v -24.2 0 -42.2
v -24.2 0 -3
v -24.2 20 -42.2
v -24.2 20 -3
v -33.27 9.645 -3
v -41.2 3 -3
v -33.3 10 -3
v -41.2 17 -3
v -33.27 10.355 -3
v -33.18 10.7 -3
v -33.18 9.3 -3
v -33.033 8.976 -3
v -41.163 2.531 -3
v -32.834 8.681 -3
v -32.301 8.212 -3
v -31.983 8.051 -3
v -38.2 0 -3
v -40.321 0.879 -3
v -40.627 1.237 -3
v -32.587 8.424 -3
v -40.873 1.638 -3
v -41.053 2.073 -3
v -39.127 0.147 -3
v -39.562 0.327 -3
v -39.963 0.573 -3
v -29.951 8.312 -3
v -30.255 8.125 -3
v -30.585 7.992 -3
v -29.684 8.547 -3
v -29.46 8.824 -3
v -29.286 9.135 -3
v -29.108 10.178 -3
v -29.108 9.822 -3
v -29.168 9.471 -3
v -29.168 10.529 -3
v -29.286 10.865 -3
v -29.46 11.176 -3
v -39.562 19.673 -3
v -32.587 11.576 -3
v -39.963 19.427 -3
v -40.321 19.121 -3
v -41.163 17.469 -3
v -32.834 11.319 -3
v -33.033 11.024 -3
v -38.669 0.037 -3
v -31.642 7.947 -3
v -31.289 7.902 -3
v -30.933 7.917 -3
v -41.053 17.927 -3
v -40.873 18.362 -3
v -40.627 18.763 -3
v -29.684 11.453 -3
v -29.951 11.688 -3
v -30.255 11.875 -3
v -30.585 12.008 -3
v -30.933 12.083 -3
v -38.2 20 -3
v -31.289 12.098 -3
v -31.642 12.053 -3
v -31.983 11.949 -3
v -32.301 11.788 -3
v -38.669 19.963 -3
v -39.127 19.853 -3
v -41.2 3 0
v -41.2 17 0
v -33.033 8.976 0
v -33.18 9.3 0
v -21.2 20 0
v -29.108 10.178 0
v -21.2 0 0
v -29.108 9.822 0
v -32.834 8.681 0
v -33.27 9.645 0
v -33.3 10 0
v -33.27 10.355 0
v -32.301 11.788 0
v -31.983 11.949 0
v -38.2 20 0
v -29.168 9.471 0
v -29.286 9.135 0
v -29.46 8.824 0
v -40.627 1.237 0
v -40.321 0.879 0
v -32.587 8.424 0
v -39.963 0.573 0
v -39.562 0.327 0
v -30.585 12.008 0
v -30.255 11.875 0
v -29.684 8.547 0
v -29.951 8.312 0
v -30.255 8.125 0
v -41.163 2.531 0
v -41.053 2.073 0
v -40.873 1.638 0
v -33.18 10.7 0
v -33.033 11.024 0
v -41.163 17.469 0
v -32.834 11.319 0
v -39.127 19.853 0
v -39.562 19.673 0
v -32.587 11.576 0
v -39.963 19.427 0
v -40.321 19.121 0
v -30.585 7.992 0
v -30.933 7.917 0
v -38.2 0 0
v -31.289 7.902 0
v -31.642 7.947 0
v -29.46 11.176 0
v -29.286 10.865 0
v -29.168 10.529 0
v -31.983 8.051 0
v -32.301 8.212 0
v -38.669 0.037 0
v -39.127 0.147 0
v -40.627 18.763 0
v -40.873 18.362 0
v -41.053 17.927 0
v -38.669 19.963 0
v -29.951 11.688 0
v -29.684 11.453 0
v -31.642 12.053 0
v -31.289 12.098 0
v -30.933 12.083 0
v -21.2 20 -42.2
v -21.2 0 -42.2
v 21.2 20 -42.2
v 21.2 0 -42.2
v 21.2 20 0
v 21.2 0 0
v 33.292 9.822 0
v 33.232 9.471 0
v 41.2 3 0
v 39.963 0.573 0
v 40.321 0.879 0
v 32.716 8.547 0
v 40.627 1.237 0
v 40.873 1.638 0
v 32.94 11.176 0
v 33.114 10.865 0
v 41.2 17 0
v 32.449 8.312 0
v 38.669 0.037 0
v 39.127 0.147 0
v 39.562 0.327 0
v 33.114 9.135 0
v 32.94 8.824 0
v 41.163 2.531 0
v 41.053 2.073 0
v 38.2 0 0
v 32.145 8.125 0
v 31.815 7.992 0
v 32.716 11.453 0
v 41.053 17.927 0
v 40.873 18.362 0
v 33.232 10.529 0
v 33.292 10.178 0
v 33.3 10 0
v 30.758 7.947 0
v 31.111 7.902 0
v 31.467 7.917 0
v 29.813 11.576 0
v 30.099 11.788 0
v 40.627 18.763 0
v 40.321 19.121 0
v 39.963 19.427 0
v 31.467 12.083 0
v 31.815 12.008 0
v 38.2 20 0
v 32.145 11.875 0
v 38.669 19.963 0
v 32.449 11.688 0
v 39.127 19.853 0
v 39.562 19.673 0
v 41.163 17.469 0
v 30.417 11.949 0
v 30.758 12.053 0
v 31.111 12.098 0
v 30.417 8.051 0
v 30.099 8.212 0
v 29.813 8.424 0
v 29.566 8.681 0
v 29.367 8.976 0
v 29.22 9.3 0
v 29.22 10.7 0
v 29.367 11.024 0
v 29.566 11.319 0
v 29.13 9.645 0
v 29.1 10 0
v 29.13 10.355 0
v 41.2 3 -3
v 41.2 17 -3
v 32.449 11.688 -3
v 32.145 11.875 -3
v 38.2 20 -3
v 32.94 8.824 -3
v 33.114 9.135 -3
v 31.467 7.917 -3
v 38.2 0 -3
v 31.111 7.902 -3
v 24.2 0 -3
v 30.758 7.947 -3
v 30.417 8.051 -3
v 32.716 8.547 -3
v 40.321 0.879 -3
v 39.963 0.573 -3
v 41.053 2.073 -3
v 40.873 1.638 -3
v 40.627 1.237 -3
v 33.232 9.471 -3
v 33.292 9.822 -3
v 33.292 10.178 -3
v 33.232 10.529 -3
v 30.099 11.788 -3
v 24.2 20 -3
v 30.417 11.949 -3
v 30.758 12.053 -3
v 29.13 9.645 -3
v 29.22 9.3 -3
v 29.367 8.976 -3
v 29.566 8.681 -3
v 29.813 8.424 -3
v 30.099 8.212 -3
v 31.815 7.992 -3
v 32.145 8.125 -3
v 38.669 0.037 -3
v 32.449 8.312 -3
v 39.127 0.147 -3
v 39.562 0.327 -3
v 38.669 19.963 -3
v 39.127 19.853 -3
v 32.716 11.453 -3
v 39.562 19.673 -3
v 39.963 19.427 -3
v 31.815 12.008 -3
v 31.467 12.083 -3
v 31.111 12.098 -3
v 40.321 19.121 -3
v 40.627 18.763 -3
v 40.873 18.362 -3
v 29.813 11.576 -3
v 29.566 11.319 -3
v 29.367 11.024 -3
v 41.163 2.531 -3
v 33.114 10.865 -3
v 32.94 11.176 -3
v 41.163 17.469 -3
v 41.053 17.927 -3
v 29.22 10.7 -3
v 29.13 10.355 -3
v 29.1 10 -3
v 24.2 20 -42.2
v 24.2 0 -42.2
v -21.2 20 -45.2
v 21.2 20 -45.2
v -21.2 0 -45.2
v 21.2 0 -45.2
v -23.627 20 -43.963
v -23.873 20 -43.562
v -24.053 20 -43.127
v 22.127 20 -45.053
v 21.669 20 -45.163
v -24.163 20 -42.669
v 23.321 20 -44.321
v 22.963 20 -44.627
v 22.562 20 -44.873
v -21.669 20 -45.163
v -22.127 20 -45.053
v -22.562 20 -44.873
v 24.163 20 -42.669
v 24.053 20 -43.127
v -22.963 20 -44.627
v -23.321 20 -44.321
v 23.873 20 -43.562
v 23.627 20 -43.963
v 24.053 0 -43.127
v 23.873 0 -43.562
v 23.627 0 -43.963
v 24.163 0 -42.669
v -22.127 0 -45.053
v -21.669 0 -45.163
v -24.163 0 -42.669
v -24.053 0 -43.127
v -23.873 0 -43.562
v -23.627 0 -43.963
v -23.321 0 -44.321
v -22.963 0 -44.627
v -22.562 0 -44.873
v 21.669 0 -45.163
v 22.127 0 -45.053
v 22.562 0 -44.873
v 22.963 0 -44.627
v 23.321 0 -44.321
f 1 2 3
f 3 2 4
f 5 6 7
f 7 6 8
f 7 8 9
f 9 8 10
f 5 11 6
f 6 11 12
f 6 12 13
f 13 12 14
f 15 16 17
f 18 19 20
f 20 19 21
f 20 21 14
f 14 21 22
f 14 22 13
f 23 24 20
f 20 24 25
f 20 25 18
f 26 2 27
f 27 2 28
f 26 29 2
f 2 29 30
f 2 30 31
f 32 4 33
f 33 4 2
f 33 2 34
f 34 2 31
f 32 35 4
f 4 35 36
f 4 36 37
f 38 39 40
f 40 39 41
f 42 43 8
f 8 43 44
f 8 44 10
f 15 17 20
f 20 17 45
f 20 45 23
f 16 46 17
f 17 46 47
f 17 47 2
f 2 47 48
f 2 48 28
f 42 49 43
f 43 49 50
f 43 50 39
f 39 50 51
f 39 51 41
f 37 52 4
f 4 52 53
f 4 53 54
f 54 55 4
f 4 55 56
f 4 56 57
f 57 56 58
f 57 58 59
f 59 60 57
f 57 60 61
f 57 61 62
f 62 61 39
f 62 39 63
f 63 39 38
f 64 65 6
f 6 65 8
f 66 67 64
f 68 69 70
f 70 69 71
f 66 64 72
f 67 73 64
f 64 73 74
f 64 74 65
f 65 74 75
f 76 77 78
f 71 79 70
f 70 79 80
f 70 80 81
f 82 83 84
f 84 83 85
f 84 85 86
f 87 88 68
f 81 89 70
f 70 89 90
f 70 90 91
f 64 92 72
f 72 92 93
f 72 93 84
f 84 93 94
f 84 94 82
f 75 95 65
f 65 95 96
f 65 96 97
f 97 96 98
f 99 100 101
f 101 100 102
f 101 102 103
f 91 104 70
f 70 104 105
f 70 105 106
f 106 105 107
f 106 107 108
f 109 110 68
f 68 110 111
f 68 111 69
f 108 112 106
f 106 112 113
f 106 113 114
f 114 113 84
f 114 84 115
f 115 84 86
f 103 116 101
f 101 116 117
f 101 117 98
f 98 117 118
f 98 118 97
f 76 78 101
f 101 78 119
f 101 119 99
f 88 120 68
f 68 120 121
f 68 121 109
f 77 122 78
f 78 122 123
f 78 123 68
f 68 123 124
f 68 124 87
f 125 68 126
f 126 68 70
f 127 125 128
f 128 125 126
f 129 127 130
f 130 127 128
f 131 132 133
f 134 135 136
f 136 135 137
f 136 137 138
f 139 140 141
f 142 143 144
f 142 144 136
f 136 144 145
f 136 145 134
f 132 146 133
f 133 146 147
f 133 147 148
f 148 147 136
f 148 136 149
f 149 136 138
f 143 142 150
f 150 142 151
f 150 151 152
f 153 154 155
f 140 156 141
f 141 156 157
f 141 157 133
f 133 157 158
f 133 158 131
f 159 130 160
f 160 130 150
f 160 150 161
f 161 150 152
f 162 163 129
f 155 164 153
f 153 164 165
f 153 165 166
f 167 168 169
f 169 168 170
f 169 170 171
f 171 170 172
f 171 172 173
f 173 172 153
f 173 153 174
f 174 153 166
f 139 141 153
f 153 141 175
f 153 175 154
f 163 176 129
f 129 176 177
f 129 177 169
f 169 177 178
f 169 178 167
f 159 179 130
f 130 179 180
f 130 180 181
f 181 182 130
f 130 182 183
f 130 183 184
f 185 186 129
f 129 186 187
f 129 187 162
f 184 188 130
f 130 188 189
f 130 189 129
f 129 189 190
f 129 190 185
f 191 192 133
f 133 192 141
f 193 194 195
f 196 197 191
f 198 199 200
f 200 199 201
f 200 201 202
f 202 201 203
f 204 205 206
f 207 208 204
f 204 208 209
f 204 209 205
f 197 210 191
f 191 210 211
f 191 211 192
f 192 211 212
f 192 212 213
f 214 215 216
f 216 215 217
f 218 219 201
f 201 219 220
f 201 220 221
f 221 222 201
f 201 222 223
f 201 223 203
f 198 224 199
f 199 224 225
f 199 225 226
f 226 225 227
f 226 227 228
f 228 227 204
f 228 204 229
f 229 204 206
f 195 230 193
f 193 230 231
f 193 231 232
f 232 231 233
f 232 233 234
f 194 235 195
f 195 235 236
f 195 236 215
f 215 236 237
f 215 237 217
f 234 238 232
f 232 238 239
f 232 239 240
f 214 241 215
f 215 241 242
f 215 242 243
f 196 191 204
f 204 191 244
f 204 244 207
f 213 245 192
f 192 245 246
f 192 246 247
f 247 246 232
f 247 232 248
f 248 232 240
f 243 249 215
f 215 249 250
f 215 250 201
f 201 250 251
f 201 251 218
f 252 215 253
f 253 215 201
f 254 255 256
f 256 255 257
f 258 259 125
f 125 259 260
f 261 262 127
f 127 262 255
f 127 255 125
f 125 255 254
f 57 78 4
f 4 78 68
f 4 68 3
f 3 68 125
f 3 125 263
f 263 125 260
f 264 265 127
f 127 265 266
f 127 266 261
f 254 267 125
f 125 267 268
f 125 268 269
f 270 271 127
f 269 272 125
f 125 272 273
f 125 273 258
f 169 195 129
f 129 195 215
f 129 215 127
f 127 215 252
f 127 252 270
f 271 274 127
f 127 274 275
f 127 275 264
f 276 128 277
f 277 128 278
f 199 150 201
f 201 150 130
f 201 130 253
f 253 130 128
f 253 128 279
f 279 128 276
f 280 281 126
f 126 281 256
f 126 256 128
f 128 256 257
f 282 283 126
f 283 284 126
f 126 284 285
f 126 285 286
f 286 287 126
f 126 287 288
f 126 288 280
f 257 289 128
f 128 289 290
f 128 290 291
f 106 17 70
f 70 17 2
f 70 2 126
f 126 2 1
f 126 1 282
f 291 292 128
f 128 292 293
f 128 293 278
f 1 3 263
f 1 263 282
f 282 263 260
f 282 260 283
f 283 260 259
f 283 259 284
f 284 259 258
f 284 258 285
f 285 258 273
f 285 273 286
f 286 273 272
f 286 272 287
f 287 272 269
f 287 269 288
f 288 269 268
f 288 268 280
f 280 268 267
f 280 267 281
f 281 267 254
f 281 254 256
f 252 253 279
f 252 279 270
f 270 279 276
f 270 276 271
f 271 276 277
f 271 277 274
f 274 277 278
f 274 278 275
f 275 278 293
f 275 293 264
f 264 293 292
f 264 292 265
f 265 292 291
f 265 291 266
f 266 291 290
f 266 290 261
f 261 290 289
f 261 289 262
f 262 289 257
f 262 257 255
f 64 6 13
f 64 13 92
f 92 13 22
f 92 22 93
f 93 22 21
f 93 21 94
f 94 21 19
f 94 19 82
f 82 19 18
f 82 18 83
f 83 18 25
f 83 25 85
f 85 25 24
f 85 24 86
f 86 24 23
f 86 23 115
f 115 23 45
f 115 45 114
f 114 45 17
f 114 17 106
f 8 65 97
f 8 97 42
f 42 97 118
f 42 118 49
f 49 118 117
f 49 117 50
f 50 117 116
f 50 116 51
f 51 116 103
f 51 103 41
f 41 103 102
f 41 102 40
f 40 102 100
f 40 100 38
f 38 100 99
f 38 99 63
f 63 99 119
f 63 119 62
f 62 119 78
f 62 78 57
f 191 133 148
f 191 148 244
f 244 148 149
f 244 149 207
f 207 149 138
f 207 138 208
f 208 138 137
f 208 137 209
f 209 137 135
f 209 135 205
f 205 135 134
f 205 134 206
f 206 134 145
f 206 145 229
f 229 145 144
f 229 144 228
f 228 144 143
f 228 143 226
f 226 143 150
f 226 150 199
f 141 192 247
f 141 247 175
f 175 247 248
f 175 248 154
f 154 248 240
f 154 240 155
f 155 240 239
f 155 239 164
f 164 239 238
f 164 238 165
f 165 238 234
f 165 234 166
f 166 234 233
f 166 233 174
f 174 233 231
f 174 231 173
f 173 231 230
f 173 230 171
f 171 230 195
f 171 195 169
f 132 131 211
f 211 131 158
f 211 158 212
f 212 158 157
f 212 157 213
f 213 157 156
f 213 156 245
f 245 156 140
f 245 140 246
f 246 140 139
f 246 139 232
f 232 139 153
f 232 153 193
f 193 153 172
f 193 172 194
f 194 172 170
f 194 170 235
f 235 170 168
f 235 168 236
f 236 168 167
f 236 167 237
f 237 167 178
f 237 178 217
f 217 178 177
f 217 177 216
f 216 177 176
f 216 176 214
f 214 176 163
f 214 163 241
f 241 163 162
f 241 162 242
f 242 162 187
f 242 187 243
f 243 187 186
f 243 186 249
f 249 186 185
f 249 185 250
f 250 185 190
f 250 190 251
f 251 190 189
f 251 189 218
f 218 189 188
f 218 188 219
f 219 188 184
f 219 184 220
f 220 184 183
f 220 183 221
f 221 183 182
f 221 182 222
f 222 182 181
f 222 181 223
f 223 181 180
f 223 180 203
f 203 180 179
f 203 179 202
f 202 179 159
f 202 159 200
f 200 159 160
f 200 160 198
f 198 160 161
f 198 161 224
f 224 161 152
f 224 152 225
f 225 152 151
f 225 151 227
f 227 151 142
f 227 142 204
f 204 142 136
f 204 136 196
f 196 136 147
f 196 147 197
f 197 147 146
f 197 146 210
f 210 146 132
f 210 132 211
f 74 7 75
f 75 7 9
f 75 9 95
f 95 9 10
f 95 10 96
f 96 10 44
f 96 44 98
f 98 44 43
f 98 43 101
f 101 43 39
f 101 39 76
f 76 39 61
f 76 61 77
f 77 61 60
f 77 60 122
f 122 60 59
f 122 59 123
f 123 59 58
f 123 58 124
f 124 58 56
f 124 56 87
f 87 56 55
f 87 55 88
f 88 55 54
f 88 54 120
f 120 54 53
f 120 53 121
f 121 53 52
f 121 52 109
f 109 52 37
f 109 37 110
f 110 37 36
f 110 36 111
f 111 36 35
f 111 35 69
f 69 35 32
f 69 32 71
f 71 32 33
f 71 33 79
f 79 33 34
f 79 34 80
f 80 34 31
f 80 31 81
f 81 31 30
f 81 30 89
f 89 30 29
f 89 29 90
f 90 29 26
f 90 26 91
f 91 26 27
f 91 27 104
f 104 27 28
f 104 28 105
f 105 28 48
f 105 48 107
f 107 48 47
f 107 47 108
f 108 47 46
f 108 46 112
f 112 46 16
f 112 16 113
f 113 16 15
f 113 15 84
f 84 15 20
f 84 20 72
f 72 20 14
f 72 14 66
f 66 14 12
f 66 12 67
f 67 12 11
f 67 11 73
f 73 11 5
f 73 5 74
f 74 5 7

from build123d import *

# Parameters (mm, degrees)
EXTRUDE_1_DEPTH     = 20
FILLET_1_R          = 3
FILLET_2_R          = 3
SKETCH_3_R          = 2.1
CUT_EXTRUDE_1_DEPTH = 10


with BuildPart() as part:
    # 草图1 → 凸台-拉伸1 (new body)
    with BuildSketch(Plane(origin=(0, 0, 0), x_dir=(1, 0, 0), z_dir=(0, 1, 0))):
        Polygon((-21.2, 6.013269655), (-21.2, 0), (-41.2, 0), (-41.2, 3), (-24.2, 3), (-24.2, 45.2), (24.2, 45.2), (24.2, 3), (41.2, 3), (41.2, 0), (21.2, 0), (21.2, 6.013269655), (21.2, 42.2), (-21.2, 42.2), align=None)
    extrude(amount=EXTRUDE_1_DEPTH)

    # 圆角1
    fillet_1_edges = [part.edges().sort_by_distance(p)[0] for p in [
        (-24.2, 10, -45.2),
        (24.2, 10, -45.2),
    ]]
    fillet(fillet_1_edges, radius=FILLET_1_R)

    # 圆角2
    fillet_2_edges = [part.edges().sort_by_distance(p)[0] for p in [
        (-41.2, 20, -1.5),
        (41.2, 0, -1.5),
        (-41.2, 0, -1.5),
        (41.2, 20, -1.5),
    ]]
    fillet(fillet_2_edges, radius=FILLET_2_R)

    # 草图3 → 切除-拉伸1 (cut)
    with BuildSketch(Plane(origin=(0, 0, -3), x_dir=(-1, 0, 0), z_dir=(0, 0, -1))):
        with Locations((31.2, 10)):
            Circle(SKETCH_3_R)
        with Locations((-31.2, 10)):
            Circle(SKETCH_3_R)
    extrude(amount=-CUT_EXTRUDE_1_DEPTH, mode=Mode.SUBTRACT)


solid = part.part
